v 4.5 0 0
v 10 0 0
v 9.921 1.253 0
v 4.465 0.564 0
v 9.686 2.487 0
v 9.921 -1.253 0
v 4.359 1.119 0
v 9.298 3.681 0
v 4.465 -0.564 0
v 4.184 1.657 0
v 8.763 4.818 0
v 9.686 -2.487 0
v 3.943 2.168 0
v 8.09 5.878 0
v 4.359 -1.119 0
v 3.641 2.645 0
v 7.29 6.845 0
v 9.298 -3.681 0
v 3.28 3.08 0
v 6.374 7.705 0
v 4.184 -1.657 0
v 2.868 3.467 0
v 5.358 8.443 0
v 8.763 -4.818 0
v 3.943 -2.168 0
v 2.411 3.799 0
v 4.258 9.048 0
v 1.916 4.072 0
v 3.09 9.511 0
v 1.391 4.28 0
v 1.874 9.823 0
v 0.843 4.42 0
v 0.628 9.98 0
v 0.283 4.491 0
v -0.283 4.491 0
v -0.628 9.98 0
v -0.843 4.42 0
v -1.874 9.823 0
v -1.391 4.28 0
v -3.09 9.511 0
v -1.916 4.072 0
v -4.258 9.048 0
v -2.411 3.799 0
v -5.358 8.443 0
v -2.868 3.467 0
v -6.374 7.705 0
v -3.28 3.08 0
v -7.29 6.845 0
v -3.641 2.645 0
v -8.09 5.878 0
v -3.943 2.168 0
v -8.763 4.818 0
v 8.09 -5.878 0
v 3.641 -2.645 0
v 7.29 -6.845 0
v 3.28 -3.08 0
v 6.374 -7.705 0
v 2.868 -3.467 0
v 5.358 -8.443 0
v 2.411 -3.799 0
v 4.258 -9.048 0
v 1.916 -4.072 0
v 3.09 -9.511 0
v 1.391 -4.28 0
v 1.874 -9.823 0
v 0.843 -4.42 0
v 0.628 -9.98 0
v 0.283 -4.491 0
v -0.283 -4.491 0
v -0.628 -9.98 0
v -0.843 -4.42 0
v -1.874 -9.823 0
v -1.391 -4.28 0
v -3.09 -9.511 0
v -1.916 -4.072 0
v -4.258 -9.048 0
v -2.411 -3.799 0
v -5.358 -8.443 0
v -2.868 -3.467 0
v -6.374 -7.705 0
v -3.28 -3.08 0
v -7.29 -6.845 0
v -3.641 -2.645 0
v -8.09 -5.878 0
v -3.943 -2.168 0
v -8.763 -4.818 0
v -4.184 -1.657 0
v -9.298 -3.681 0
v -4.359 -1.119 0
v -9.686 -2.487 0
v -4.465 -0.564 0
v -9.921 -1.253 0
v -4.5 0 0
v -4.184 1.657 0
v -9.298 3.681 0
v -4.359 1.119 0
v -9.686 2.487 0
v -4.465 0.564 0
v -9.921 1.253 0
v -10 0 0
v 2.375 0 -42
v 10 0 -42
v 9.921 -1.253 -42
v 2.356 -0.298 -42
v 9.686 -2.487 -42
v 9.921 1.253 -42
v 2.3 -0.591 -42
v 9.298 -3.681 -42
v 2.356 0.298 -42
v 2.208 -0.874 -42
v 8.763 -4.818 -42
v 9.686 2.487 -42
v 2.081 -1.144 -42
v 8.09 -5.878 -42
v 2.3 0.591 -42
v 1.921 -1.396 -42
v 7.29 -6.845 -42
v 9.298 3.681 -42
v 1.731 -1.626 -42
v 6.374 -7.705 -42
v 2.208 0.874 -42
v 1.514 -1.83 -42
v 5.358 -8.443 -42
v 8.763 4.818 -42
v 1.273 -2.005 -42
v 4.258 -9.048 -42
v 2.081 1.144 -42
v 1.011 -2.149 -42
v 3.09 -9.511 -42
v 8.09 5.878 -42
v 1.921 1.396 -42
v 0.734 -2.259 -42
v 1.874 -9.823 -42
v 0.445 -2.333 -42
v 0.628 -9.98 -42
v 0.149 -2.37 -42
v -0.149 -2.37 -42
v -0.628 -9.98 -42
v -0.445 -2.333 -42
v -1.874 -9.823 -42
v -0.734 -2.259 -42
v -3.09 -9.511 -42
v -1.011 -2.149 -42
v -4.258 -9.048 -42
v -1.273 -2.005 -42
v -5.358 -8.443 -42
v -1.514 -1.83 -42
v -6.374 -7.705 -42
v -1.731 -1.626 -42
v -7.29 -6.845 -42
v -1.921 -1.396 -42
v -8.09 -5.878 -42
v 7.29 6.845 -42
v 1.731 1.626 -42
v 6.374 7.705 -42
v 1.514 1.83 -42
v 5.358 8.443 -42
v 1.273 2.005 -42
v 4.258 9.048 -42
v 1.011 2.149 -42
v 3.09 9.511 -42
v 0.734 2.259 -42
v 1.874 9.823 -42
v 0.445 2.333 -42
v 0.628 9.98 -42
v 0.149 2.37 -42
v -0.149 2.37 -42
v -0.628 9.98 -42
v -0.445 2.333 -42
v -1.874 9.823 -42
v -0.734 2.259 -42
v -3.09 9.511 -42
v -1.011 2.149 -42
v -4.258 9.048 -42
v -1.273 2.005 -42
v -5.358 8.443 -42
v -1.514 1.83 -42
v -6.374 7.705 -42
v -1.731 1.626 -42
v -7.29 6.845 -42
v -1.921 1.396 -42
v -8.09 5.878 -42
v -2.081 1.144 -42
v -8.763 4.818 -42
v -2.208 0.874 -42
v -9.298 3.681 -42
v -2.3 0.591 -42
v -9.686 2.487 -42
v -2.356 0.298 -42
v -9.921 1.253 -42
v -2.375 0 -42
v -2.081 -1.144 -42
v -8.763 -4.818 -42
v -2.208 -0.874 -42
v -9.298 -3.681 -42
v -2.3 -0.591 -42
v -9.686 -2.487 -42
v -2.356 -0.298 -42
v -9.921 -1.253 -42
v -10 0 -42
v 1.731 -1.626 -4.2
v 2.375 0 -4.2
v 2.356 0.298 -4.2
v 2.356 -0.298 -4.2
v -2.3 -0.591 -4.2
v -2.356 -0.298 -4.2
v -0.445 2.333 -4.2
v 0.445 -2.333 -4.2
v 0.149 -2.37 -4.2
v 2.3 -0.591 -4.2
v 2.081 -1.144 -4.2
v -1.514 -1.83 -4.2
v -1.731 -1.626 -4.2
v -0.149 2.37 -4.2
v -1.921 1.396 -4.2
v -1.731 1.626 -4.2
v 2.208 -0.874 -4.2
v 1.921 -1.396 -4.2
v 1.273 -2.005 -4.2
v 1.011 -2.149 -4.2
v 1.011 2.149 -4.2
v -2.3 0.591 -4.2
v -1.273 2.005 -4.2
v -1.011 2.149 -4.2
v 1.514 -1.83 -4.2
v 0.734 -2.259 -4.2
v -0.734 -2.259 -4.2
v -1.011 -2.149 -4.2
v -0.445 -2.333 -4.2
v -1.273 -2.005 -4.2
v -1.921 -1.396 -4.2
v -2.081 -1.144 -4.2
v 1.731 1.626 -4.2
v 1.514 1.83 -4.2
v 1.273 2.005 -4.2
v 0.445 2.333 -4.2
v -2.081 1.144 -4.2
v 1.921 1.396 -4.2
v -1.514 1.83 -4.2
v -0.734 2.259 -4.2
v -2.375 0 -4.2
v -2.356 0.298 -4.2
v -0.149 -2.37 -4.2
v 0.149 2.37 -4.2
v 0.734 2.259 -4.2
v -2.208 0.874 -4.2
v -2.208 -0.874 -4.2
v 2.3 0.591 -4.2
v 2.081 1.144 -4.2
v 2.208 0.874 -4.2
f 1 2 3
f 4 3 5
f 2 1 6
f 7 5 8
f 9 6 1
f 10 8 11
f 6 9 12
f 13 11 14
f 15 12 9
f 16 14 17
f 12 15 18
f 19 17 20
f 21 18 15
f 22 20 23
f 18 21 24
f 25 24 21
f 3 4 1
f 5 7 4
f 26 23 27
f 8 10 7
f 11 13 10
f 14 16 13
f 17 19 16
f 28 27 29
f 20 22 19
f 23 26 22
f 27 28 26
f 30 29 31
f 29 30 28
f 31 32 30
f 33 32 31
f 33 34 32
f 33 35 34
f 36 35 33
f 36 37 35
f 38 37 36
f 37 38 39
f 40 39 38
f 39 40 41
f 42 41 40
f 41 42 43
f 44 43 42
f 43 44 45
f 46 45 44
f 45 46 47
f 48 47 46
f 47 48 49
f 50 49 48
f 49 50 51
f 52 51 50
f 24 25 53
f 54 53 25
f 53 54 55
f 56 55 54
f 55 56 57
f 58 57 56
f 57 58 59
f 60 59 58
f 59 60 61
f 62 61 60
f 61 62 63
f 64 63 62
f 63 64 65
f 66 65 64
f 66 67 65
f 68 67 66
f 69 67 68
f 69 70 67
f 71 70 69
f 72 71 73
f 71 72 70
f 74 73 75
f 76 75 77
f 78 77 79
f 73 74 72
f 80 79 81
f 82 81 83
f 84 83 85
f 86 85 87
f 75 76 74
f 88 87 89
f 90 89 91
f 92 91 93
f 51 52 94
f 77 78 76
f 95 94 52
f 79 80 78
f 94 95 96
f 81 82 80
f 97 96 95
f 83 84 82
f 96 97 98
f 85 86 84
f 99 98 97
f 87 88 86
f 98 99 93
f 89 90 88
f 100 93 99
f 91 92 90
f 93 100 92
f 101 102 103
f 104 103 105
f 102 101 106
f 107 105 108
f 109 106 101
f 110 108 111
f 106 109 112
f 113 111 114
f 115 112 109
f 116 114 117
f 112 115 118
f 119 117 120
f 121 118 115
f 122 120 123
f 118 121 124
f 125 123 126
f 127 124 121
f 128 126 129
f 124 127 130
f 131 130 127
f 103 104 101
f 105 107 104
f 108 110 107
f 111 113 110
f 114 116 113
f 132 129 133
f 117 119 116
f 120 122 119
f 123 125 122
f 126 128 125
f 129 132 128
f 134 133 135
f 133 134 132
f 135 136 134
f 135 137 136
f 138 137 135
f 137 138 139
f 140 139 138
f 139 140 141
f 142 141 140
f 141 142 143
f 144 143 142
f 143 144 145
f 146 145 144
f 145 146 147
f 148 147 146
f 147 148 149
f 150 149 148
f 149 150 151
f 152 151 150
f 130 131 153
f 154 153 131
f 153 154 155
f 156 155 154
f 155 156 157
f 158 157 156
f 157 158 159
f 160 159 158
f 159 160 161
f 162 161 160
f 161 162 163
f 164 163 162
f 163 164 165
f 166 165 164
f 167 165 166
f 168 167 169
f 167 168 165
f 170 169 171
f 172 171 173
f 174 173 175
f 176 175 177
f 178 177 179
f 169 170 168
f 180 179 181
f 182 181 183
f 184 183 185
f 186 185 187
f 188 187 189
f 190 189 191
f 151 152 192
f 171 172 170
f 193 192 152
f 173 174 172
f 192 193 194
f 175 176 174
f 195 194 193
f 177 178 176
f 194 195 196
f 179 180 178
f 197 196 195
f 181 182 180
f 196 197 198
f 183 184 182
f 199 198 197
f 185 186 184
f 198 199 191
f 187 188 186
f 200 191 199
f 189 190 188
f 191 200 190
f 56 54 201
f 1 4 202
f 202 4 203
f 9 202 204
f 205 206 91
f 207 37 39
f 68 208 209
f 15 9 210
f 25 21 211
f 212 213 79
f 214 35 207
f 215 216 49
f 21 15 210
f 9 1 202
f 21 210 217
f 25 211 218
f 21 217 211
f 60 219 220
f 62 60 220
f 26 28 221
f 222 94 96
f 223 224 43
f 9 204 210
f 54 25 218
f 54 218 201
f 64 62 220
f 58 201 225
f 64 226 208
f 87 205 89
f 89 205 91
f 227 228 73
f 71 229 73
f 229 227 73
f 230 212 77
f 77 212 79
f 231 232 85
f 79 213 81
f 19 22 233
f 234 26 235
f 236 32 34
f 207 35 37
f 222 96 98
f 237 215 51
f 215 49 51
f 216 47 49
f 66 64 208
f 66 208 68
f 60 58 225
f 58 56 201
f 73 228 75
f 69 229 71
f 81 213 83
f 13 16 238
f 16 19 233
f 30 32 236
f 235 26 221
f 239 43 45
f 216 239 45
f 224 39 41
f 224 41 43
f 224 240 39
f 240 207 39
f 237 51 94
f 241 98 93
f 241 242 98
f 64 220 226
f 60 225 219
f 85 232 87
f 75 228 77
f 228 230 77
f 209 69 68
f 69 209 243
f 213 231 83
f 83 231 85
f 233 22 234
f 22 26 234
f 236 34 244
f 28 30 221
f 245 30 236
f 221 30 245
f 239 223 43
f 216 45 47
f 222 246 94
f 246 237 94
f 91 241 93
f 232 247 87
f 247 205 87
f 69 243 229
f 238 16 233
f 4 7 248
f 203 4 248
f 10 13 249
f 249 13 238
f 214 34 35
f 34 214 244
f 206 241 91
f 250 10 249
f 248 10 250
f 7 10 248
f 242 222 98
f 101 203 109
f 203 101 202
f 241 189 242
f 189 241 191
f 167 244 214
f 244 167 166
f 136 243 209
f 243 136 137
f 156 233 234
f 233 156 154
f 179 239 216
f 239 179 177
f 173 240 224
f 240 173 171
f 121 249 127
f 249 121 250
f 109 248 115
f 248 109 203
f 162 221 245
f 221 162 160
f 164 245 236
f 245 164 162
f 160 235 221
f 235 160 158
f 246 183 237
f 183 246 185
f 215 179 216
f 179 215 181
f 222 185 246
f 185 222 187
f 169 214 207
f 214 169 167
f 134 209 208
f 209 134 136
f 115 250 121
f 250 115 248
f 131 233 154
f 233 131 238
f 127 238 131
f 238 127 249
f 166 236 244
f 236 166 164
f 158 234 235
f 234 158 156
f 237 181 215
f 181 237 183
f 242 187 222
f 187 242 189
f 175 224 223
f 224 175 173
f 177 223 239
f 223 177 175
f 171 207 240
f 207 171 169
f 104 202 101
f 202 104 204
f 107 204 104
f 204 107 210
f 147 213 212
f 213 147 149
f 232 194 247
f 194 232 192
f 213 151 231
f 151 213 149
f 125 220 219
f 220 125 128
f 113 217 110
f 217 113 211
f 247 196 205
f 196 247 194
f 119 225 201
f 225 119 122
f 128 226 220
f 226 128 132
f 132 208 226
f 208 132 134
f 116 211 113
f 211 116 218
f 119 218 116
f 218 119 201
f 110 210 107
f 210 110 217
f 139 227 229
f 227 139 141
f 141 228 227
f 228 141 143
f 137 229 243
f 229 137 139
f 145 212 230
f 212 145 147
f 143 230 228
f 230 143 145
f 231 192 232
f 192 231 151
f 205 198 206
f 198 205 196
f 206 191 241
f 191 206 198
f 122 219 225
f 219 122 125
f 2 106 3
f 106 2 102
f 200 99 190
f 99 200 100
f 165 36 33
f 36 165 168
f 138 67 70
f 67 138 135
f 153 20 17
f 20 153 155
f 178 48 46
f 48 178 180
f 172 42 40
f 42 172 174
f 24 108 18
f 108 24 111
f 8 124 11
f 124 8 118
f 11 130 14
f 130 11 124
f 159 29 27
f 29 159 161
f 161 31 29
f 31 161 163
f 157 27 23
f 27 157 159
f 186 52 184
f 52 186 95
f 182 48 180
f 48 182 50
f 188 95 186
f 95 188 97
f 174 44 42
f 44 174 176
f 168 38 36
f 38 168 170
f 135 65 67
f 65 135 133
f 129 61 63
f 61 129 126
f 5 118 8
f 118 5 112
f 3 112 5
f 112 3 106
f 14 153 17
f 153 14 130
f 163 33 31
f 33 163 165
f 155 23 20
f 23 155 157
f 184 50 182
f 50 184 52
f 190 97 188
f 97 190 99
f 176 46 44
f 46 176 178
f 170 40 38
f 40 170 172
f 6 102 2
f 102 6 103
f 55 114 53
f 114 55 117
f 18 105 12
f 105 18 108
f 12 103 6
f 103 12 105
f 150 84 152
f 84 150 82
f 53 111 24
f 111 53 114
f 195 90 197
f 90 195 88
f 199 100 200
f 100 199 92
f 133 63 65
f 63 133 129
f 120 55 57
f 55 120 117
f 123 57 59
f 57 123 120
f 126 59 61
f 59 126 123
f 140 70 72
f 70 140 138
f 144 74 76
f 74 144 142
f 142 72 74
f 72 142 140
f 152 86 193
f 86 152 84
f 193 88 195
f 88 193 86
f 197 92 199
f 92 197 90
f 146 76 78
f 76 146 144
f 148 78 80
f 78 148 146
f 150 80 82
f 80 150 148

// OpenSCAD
$fn = 50;


difference() {
	union() {
		translate(v = [0, 0, -42.0000000000]) {
			cylinder(h = 42, r = 10.0000000000);
		}
	}
	union() {
		translate(v = [0, 0, 0]) {
			rotate(a = [0, 0, 0]) {
				difference() {
					union() {
						#translate(v = [0, 0, -42.0000000000]) {
							cylinder(h = 42, r = 2.2500000000);
						}
						#translate(v = [0, 0, -4.2000000000]) {
							cylinder(h = 4.2000000000, r = 10.0000000000, r1 = 2.3750000000, r2 = 4.5000000000);
						}
						#translate(v = [0, 0, -42.0000000000]) {
							cylinder(h = 42, r = 2.3750000000);
						}
						#translate(v = [0, 0, -42.0000000000]) {
							cylinder(h = 42, r = 2.2500000000);
						}
					}
					union();
				}
			}
		}
	}
}
